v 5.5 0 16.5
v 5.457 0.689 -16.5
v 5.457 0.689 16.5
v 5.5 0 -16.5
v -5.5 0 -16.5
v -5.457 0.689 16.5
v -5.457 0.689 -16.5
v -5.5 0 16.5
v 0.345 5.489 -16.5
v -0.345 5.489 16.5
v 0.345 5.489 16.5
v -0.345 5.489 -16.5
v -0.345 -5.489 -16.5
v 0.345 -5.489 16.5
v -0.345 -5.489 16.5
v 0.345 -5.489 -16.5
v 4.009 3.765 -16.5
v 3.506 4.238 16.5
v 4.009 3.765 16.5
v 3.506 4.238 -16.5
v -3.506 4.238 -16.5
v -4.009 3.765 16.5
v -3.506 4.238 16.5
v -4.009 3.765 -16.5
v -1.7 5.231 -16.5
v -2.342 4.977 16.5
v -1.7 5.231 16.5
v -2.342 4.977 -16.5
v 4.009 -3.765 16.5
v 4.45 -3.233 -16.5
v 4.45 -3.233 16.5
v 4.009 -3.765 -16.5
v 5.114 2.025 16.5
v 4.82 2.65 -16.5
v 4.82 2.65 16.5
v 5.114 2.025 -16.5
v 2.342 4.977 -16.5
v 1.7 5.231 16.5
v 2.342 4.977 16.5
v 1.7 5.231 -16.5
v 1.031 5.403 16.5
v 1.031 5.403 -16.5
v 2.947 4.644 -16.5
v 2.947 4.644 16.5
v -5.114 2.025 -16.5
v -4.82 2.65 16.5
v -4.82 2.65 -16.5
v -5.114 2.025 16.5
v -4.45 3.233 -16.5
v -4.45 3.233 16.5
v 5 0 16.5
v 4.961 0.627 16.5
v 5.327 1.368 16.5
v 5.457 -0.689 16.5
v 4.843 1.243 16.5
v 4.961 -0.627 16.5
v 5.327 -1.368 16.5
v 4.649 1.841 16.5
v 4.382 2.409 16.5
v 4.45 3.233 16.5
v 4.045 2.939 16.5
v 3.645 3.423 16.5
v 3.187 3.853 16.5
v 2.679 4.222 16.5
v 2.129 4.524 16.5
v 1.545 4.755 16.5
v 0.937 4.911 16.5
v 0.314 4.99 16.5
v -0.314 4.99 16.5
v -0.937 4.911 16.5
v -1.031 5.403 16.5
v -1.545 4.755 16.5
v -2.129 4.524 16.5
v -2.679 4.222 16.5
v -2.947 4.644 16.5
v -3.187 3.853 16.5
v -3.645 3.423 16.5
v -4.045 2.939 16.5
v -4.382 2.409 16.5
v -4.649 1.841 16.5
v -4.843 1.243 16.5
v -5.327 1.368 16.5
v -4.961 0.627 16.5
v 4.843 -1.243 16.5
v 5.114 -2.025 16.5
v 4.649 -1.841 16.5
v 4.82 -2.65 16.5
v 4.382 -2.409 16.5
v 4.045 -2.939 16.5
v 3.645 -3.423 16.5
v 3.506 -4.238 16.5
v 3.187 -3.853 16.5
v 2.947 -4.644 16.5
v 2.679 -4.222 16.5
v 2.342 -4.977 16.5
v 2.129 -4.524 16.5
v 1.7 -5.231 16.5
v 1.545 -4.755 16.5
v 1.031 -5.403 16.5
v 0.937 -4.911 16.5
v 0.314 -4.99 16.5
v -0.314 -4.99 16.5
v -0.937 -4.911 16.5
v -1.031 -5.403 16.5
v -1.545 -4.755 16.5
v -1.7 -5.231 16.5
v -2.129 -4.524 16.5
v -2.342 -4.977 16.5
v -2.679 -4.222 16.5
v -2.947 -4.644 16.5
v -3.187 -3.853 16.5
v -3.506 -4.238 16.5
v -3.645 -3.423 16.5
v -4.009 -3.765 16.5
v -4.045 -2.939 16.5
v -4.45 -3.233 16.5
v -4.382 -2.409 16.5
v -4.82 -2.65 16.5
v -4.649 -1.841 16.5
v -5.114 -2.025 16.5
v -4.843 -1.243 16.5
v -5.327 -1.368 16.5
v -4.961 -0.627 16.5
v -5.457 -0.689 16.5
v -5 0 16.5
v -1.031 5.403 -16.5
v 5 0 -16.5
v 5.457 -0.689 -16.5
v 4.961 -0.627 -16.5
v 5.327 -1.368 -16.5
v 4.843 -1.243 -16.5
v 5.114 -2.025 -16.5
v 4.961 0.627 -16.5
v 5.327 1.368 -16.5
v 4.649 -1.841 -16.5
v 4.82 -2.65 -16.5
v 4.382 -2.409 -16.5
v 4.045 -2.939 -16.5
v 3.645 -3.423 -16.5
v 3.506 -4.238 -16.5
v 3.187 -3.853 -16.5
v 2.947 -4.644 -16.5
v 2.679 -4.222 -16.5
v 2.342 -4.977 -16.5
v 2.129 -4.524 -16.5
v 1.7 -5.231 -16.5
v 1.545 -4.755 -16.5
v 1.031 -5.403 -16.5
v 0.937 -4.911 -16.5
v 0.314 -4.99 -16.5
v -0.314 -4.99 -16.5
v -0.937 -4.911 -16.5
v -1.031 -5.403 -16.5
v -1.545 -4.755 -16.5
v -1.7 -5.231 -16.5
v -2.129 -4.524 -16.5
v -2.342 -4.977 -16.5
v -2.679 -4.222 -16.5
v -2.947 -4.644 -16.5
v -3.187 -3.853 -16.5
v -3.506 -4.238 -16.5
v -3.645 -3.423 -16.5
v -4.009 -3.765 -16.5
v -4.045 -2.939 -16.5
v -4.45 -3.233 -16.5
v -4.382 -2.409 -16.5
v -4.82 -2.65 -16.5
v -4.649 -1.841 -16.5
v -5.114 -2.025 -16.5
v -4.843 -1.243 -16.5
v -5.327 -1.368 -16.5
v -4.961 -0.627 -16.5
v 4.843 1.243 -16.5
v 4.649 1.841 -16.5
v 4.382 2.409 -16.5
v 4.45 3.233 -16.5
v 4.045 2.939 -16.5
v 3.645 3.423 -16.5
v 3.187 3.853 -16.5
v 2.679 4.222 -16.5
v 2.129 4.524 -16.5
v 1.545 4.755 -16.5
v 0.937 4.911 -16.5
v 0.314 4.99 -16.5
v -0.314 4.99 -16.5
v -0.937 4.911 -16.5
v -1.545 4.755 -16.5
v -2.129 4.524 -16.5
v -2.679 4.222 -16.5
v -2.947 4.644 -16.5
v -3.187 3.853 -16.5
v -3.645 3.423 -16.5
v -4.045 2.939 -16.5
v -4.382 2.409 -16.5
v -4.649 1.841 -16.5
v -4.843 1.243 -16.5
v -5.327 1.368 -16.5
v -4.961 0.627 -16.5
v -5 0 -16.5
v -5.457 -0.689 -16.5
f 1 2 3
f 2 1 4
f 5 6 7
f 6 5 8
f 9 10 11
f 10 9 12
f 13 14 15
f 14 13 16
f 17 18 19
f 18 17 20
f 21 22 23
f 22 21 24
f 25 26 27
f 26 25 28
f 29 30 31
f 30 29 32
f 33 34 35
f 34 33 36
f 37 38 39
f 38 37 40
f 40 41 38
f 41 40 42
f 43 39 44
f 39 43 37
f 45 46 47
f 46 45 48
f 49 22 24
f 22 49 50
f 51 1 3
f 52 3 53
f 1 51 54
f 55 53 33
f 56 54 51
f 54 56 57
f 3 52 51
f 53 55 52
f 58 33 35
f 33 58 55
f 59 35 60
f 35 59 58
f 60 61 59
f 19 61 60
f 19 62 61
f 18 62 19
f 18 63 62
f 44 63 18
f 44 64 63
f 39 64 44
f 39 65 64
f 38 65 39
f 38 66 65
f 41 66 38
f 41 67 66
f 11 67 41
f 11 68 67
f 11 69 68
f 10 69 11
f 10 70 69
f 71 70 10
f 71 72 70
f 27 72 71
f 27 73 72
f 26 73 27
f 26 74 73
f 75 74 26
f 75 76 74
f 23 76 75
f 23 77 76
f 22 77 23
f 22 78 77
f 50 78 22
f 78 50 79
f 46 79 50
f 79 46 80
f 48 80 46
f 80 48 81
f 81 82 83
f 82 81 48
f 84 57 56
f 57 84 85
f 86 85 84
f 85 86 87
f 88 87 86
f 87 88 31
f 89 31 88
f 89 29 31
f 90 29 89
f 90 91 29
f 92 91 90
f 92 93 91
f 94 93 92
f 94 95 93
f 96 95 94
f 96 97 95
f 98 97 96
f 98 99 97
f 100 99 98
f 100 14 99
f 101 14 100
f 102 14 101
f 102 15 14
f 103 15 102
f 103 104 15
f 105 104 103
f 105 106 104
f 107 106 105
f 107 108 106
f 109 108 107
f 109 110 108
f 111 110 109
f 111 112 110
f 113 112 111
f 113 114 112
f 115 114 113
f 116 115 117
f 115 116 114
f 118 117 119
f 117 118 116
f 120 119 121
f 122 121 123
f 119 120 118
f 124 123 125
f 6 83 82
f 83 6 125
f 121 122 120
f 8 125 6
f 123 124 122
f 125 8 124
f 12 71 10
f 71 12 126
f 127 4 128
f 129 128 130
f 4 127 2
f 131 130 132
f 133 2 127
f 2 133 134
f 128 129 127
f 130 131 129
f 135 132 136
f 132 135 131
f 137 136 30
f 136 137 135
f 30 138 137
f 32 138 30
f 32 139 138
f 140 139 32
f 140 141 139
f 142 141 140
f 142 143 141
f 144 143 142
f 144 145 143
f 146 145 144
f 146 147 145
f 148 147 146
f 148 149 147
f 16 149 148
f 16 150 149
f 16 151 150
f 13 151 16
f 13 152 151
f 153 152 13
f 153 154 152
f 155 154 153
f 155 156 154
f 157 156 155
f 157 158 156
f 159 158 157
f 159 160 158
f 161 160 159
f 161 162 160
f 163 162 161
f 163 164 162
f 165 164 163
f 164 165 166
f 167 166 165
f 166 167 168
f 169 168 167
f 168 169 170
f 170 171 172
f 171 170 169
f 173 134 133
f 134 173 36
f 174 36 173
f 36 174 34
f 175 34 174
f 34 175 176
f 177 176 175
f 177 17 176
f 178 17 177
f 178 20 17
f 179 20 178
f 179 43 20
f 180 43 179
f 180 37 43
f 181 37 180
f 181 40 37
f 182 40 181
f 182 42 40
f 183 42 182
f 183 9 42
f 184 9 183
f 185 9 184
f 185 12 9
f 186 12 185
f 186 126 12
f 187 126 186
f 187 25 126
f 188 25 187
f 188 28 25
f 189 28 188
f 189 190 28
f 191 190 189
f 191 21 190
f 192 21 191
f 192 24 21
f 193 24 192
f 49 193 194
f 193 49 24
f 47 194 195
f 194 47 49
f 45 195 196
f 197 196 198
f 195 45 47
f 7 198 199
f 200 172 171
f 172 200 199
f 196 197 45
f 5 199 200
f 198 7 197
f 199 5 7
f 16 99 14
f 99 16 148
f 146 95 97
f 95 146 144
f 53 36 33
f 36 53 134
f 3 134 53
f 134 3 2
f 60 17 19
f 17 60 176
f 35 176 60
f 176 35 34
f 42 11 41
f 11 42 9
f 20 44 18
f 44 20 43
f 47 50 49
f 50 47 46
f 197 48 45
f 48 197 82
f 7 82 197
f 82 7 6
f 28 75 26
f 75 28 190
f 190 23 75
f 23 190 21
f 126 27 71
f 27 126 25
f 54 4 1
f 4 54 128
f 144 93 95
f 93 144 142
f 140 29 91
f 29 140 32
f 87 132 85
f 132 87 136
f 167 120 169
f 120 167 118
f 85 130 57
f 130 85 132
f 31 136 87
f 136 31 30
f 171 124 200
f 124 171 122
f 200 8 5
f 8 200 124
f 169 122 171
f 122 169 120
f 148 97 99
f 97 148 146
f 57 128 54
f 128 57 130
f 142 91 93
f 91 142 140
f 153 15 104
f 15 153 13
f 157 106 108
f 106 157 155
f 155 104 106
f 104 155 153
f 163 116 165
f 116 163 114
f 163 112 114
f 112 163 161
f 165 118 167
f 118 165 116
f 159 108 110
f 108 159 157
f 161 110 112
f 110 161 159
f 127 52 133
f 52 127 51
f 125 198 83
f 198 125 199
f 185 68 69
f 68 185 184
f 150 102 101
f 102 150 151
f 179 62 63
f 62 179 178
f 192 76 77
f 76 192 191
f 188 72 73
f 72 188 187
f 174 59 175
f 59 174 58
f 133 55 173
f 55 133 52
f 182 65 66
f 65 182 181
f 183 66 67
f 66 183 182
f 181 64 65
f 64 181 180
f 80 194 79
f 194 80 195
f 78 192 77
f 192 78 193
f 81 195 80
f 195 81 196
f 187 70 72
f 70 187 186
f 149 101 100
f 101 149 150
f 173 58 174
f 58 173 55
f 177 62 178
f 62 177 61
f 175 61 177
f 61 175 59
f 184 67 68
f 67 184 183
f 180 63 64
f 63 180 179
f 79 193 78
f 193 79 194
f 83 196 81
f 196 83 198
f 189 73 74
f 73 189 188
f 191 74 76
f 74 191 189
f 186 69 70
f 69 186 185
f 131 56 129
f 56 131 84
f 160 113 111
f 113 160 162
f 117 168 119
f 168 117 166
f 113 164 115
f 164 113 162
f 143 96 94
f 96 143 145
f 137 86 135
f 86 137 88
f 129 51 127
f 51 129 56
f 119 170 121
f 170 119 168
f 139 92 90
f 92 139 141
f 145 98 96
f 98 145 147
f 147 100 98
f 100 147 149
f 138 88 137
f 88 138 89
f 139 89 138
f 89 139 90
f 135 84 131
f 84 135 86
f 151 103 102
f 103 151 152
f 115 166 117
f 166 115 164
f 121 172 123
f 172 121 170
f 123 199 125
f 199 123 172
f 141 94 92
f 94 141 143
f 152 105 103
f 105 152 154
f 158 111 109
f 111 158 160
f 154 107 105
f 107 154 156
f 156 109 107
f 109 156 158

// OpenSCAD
$fn = 50;


difference() {
	union() {
		translate(v = [0, 0, -16.5000000000]) {
			cylinder(h = 33, r = 5.5000000000);
		}
	}
	union() {
		translate(v = [0, 0, -100.0000000000]) {
			cylinder(h = 200, r = 5);
		}
	}
}
